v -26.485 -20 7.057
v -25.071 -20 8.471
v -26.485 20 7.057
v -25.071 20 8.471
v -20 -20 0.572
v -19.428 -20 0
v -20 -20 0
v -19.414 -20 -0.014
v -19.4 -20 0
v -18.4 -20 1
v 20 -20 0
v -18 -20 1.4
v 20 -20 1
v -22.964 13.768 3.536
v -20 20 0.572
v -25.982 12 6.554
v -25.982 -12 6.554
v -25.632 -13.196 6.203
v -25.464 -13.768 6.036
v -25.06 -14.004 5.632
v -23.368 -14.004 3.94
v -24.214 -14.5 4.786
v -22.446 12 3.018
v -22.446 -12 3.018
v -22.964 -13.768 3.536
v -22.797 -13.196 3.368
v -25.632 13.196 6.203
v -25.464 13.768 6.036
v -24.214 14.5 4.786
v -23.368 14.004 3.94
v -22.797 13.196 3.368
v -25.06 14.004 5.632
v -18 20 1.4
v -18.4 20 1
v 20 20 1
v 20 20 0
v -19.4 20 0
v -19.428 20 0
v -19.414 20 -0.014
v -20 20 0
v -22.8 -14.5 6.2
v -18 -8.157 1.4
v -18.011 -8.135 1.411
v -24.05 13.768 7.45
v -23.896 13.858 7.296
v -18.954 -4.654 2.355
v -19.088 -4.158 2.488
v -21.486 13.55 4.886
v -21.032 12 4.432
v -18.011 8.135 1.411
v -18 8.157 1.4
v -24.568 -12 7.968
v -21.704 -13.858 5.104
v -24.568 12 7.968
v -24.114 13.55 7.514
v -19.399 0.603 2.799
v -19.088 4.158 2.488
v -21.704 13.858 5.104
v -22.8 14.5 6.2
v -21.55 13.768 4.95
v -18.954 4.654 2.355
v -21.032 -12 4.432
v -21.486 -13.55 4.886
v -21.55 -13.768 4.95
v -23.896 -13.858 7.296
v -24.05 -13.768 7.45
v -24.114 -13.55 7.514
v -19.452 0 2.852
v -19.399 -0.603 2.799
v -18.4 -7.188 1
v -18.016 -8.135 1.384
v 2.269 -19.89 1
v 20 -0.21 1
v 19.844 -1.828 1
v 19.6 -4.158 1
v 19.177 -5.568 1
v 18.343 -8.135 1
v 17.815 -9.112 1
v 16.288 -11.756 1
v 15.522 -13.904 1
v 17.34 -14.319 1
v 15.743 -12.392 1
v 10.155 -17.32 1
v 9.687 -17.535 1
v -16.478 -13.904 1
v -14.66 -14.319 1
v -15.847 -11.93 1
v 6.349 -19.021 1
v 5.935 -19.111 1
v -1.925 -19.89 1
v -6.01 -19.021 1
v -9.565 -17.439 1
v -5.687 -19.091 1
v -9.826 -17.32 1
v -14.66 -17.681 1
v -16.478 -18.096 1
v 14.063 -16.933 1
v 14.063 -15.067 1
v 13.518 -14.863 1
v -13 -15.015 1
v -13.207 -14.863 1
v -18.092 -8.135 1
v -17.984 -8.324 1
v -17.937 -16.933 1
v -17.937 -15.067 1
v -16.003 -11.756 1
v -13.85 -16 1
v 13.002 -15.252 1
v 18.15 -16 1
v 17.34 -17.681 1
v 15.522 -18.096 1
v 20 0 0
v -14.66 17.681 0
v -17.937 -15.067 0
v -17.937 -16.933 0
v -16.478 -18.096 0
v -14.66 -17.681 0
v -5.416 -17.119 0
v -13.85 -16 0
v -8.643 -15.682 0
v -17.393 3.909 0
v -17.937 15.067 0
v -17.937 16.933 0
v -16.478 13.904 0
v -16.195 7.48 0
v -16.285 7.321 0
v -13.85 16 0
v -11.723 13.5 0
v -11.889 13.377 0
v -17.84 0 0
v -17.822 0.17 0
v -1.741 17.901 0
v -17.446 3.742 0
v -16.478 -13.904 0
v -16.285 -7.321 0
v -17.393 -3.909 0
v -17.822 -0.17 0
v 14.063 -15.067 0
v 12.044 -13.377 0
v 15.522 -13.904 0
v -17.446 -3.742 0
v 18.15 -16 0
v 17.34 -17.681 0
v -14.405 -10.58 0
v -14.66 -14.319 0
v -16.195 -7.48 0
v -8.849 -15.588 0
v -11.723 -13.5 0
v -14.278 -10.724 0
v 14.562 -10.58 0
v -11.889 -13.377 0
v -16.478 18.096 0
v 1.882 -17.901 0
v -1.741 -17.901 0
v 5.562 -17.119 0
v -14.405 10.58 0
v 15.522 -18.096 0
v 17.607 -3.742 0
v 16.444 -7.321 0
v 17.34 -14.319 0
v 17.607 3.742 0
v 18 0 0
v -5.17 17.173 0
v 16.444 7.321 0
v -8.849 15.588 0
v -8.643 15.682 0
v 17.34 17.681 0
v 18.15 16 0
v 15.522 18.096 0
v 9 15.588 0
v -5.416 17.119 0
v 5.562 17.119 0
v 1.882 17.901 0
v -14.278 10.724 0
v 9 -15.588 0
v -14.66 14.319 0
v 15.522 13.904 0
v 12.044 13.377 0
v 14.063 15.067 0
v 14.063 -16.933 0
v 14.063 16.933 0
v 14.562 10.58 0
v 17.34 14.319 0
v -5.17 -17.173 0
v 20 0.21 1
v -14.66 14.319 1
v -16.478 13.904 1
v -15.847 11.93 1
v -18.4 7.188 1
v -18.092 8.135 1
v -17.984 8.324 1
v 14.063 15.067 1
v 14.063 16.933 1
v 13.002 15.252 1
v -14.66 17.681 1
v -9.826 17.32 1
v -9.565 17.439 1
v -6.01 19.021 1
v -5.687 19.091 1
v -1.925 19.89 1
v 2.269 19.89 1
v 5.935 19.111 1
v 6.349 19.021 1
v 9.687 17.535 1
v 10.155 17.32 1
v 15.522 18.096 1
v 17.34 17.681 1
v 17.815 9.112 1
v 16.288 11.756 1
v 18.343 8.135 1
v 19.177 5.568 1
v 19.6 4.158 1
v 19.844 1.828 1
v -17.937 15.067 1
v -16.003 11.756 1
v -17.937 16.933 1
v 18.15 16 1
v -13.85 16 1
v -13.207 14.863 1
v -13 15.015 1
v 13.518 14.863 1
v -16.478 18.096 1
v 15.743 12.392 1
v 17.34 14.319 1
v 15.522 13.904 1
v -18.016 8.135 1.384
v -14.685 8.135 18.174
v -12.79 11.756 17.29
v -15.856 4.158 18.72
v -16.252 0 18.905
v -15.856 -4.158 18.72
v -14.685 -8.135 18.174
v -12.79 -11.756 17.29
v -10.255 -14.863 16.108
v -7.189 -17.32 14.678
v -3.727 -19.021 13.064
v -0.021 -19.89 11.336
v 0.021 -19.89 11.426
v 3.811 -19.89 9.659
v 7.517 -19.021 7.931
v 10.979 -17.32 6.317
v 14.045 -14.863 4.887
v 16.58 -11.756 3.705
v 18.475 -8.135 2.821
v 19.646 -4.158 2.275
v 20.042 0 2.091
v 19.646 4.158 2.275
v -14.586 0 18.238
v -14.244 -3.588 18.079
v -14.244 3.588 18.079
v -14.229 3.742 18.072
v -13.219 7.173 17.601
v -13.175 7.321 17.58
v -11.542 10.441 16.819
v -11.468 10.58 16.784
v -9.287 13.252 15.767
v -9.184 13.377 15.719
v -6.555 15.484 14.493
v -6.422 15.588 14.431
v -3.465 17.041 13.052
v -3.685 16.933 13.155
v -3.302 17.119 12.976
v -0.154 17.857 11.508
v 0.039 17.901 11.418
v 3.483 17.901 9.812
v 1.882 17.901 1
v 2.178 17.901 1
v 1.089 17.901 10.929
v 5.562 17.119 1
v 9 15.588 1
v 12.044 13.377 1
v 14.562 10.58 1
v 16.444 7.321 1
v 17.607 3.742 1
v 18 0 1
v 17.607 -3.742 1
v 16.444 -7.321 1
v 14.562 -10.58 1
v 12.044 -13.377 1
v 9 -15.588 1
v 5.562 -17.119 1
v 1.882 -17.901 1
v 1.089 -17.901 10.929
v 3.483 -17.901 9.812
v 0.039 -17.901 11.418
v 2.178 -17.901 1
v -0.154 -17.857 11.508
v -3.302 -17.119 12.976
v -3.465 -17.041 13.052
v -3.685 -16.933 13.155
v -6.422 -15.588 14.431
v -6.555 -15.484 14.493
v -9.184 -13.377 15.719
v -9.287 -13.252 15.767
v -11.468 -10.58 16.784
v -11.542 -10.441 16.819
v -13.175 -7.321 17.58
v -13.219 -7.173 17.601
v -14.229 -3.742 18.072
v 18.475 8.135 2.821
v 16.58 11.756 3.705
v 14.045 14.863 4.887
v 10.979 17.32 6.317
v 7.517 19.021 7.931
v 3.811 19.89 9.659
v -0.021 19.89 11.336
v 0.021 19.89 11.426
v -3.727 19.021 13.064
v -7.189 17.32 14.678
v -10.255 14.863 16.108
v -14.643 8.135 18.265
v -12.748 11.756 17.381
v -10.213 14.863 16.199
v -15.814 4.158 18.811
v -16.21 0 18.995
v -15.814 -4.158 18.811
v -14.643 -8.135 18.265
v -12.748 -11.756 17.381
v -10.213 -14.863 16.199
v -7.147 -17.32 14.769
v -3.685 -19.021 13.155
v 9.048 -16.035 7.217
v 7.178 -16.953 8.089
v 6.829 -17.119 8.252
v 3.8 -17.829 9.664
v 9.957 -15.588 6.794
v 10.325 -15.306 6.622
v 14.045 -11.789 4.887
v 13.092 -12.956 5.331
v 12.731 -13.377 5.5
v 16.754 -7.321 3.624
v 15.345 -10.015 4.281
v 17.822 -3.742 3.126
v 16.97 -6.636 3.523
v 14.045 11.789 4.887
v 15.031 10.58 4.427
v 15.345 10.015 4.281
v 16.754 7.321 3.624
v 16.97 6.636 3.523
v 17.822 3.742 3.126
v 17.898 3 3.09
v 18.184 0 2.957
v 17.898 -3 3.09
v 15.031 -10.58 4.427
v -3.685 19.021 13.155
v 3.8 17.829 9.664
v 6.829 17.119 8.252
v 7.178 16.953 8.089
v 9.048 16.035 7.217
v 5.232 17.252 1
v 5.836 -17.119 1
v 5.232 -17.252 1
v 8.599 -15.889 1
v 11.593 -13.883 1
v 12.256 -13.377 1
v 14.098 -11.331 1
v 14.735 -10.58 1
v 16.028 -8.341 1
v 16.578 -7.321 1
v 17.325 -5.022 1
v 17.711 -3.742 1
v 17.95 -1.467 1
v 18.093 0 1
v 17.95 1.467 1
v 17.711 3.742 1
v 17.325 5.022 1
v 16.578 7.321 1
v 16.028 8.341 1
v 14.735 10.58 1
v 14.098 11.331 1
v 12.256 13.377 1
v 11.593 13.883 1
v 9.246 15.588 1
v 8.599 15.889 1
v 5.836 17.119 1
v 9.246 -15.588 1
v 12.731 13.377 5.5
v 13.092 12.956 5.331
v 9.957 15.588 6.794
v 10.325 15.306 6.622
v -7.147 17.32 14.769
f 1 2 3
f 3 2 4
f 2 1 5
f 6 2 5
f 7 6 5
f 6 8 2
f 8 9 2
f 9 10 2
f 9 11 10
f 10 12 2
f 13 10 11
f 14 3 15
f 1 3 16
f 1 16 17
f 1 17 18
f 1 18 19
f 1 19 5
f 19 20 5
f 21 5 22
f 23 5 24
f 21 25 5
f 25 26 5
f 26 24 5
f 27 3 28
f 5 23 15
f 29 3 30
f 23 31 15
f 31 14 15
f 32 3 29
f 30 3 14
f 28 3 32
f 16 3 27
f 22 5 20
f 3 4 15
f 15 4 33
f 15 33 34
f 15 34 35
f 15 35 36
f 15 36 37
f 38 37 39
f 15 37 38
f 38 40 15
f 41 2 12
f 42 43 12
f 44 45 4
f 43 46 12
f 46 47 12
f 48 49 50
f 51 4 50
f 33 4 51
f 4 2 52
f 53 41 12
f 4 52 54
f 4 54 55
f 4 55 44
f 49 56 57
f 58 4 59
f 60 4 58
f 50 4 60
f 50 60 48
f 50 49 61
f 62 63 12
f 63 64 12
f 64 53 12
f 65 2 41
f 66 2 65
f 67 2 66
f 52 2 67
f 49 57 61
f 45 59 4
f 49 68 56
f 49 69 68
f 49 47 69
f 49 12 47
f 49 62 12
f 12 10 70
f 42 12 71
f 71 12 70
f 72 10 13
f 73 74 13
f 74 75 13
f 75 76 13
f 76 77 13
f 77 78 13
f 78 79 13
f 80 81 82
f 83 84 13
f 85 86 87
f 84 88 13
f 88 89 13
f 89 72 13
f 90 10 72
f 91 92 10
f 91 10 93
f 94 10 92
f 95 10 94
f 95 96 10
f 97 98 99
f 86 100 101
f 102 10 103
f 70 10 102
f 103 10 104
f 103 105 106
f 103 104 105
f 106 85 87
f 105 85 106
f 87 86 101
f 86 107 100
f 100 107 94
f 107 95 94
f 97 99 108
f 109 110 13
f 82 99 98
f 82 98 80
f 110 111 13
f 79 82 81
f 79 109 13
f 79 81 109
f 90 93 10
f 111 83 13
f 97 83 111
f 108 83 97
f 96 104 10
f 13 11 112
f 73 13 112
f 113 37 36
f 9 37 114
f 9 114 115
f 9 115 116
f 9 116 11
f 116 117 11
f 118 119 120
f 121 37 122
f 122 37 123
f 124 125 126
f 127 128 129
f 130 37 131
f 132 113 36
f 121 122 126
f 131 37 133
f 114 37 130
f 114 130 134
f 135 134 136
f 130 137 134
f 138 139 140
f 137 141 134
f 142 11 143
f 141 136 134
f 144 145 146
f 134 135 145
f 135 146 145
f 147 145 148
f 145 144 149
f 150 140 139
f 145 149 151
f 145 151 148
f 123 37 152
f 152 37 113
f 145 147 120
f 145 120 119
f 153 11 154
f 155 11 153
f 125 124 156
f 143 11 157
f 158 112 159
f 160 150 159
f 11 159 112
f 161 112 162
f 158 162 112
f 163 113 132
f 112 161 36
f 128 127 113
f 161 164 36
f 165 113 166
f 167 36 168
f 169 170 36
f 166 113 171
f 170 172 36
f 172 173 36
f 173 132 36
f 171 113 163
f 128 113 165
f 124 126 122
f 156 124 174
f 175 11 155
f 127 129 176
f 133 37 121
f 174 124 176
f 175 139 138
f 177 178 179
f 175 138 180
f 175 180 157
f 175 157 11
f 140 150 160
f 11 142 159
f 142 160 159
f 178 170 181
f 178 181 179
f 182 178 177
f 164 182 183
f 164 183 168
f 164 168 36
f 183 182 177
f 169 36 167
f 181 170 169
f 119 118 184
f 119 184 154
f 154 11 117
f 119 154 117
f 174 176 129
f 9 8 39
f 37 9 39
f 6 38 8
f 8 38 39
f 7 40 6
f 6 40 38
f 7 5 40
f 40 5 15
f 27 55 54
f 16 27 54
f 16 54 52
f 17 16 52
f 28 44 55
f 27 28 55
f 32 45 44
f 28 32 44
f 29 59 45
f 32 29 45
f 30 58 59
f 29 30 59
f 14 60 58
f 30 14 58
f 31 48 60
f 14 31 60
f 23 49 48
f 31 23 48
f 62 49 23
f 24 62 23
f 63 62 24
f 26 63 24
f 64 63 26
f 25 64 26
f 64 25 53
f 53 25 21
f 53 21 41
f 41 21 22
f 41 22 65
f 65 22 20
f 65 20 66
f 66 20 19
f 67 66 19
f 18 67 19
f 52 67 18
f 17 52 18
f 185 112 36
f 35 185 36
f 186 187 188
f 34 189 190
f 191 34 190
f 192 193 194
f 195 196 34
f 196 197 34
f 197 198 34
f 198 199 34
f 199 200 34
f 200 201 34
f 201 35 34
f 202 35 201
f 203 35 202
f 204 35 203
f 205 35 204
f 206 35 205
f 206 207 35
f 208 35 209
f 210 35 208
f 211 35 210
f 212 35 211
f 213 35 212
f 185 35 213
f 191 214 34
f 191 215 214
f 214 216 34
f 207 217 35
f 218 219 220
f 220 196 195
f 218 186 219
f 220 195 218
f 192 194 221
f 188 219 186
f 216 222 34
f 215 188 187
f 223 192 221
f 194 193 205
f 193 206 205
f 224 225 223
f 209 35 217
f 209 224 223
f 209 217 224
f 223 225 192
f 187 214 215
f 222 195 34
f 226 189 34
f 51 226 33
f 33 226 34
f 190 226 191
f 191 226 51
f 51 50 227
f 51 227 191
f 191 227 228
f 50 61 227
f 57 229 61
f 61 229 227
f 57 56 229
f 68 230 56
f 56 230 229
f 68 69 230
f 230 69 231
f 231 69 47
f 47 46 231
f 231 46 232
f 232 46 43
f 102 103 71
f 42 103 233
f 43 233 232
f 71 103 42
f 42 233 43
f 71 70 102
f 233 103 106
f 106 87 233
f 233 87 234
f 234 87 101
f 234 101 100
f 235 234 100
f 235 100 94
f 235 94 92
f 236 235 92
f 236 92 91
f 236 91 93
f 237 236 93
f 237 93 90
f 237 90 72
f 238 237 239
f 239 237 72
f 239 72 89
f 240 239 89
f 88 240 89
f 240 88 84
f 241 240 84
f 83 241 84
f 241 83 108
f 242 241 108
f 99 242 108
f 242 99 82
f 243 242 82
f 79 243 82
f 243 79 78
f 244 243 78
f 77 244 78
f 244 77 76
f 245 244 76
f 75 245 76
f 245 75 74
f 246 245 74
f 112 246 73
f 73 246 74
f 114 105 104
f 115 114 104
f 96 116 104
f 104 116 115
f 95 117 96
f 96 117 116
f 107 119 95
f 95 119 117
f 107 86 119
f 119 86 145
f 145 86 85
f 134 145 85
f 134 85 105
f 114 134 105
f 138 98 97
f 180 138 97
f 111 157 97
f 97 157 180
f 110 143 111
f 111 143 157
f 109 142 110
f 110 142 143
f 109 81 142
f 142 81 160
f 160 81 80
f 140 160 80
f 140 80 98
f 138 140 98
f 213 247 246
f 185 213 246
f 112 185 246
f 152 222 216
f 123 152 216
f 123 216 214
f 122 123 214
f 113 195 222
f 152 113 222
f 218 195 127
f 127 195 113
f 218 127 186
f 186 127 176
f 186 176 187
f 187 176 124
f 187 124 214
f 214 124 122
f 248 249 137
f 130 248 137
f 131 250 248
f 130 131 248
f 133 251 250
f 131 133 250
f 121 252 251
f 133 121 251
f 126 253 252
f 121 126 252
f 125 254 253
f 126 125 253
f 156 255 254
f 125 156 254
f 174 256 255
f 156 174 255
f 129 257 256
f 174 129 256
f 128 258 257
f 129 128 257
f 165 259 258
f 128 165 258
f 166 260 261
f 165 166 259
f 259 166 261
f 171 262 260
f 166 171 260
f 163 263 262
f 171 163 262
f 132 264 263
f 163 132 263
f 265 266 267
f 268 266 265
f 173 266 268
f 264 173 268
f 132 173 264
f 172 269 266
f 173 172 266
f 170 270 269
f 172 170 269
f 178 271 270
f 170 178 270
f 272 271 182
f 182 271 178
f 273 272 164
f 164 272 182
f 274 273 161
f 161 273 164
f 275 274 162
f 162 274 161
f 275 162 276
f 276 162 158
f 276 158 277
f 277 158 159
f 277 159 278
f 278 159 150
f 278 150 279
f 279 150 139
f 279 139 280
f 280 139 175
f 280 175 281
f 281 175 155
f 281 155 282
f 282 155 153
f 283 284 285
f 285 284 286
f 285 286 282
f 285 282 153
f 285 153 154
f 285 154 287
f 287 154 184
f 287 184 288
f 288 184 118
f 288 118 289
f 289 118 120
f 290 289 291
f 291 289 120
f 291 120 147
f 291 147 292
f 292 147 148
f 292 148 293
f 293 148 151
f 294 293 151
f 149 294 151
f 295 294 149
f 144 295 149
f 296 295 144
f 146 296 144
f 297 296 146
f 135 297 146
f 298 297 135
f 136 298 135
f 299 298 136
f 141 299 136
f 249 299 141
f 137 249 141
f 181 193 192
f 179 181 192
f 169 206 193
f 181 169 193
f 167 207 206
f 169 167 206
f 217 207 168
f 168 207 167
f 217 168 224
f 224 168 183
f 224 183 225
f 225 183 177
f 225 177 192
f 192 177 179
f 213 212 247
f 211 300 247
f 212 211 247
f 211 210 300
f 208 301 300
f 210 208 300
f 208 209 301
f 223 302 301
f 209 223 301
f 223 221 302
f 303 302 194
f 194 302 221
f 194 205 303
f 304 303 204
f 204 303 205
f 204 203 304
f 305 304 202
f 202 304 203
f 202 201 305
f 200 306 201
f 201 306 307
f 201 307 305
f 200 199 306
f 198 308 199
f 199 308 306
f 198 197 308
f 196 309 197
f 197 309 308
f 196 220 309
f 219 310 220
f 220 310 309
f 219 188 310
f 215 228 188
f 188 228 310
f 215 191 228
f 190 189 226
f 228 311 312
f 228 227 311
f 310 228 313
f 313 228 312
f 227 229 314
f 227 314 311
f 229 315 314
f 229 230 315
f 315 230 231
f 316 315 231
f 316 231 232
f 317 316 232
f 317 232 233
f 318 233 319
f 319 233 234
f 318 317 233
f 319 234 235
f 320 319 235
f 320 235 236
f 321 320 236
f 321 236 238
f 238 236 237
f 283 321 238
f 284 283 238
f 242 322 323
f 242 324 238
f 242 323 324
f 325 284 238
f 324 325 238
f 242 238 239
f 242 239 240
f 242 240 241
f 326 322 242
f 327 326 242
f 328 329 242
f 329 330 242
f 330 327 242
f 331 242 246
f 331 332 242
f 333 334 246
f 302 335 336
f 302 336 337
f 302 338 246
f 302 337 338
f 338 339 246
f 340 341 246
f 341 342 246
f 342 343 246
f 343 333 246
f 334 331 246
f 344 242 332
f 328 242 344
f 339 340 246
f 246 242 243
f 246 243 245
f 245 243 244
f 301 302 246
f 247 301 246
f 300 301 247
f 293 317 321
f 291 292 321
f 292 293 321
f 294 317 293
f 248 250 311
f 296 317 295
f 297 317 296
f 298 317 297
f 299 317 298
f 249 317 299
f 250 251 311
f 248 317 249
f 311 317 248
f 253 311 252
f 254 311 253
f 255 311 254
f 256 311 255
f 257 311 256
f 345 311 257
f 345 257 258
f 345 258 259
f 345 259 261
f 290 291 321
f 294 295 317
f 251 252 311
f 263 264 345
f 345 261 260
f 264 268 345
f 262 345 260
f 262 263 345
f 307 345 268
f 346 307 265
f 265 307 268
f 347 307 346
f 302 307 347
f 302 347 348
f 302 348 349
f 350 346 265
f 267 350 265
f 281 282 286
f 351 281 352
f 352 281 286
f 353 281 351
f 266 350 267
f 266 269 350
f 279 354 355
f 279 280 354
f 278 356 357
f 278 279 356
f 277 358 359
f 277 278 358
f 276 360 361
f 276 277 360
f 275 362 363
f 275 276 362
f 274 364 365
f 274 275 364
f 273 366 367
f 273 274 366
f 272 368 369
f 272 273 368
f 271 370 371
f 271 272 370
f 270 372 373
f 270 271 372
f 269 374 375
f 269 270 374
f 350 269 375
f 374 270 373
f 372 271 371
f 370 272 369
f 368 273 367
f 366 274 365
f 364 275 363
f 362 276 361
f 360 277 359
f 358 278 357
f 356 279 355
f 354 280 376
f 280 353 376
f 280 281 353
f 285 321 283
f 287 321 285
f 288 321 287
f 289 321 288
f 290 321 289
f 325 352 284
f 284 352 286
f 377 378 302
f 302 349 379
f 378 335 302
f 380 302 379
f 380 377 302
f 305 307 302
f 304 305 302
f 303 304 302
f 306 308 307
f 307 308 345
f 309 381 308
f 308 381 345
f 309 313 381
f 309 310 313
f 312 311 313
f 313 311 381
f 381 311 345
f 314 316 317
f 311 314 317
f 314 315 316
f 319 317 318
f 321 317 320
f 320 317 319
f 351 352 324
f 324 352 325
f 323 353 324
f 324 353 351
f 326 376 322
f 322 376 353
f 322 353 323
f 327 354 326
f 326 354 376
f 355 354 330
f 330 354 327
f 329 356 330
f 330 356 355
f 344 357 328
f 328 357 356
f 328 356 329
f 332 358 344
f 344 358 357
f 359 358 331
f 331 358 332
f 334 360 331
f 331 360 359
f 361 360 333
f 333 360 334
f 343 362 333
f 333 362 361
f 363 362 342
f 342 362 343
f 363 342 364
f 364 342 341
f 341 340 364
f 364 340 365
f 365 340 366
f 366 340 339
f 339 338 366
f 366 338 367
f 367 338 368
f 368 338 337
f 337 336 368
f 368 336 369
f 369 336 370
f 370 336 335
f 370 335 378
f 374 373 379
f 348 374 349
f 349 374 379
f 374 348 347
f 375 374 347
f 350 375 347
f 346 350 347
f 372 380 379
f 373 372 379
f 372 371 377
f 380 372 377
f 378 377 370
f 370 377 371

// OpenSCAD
difference(){
hull(){
cylinder(r=20,h=0.1);
translate([20,0,2])rotate([0,25,0])translate([-20,0,0])cylinder(r=20,h=0.1);
}
hull(){
translate([0,0,-1])cylinder(r=18,h=0.1);
translate([20,0,3])rotate([0,25,0])translate([-20,0,0])cylinder(r1=18,r2=18,h=0.1);
}
}

difference(){
translate([-20,-20,0])cube([40,40,1]);
translate([0,0,-30])cylinder(r=18,h=800);
translate([32/2,32/2,-2])cylinder(r=4.3/2,h=10);
translate([32/2,-32/2,-2])cylinder(r=4.3/2,h=10);
translate([-32/2,32/2,-2])cylinder(r=4.3/2,h=10);
translate([-32/2,-32/2,-2])cylinder(r=4.3/2,h=10);
}

difference(){
translate([-18,-20,1.4]) rotate([0,180+45,0])cube([10,40,2],center=false);
translate([-29,0,0])
hull(){
	translate([0,24/2,0])rotate([0,45,0]) cylinder(r=5/2,h=10);
	translate([0,-24/2,0])rotate([0,45,0]) cylinder(r=5/2,h=10);
}
}
